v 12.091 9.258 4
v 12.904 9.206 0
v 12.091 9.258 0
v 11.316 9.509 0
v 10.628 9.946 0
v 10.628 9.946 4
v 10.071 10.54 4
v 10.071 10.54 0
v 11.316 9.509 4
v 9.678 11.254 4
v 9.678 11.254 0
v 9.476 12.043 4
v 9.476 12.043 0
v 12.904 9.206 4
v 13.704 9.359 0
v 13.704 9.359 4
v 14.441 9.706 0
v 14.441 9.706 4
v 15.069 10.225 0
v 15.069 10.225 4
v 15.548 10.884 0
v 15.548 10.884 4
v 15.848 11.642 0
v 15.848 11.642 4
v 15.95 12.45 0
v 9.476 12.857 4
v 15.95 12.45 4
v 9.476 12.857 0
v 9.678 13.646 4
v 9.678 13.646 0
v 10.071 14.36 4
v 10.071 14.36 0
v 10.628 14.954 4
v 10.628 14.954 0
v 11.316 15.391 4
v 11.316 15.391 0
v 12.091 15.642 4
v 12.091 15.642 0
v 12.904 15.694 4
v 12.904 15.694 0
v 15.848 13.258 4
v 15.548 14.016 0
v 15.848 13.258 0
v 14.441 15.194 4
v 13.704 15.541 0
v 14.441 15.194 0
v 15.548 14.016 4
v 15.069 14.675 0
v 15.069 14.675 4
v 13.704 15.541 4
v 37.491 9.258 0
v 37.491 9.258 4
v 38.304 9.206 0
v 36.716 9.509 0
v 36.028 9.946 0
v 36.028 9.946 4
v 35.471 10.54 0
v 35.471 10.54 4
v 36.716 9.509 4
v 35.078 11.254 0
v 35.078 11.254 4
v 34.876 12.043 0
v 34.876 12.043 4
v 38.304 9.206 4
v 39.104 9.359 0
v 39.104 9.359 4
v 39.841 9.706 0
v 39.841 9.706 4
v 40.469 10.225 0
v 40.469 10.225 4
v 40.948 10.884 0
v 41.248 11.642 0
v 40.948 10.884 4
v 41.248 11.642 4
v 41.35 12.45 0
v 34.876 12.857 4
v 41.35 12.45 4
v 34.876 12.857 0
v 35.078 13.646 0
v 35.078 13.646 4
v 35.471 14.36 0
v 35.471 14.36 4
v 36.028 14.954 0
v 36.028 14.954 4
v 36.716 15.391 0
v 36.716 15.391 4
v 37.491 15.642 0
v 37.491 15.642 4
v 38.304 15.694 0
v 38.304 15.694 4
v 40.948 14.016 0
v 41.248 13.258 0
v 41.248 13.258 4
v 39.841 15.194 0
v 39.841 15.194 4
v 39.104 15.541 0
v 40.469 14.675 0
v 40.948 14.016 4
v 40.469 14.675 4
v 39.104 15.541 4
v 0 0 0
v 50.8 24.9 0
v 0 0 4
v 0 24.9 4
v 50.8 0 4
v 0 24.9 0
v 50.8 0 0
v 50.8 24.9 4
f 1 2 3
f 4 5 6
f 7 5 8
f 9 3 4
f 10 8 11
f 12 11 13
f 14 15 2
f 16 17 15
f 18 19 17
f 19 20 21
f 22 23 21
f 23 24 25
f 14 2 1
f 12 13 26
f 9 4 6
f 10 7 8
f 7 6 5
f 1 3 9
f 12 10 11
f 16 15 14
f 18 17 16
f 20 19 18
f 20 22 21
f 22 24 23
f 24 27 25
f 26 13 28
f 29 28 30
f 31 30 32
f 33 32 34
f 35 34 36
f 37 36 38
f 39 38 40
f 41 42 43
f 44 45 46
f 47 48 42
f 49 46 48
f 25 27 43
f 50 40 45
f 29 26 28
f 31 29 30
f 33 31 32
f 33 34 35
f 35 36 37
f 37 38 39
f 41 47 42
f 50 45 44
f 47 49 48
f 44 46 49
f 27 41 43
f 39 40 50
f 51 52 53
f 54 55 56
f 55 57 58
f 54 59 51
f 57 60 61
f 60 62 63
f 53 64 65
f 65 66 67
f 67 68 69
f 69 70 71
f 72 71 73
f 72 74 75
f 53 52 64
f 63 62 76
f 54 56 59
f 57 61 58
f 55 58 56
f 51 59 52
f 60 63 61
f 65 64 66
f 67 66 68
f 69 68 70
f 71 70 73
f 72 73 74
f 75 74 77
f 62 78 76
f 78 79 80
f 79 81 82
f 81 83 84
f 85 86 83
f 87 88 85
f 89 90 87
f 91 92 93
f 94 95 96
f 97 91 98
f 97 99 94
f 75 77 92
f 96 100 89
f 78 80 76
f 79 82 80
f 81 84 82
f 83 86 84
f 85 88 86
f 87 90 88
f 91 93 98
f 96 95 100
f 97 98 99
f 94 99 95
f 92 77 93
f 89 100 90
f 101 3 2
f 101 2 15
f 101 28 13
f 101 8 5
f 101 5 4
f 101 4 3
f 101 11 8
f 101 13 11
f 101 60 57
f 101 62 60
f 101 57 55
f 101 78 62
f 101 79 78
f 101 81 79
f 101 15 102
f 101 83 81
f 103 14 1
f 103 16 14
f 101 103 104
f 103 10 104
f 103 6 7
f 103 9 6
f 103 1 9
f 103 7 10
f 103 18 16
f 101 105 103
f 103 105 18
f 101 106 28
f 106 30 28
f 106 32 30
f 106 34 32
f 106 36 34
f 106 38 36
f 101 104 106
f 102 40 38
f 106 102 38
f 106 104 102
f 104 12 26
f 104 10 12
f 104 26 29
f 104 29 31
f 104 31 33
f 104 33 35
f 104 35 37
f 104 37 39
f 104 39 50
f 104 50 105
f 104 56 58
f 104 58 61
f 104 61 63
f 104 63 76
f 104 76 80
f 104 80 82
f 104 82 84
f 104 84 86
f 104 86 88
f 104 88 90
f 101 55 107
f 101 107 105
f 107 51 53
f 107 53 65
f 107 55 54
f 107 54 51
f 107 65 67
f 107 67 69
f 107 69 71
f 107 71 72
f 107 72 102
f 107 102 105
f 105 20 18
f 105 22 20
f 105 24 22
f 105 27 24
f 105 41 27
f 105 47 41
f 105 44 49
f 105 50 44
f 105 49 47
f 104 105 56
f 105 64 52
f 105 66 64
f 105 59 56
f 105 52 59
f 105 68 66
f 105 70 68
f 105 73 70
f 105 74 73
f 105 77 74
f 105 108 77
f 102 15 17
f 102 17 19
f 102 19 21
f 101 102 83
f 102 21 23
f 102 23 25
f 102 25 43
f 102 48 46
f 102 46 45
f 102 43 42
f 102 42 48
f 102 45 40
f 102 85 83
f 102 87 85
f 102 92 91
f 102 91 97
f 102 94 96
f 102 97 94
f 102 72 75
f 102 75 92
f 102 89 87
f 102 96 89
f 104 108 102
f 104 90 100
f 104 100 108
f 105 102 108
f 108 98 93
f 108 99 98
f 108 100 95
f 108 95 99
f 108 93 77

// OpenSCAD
width = 24.9;
hole_distance = 25.4;
extra = 12.7;
length = hole_distance + 2*extra;
thickness = 4;
$fn = 25;

difference() {
    cube([length, width, thickness]);
    for (x = [
        (length - hole_distance)/2,
        length - (length - hole_distance)/2
    ])
    translate([x, width/2, -0.1])
    cylinder(d=6.5, h=2*thickness);
}
